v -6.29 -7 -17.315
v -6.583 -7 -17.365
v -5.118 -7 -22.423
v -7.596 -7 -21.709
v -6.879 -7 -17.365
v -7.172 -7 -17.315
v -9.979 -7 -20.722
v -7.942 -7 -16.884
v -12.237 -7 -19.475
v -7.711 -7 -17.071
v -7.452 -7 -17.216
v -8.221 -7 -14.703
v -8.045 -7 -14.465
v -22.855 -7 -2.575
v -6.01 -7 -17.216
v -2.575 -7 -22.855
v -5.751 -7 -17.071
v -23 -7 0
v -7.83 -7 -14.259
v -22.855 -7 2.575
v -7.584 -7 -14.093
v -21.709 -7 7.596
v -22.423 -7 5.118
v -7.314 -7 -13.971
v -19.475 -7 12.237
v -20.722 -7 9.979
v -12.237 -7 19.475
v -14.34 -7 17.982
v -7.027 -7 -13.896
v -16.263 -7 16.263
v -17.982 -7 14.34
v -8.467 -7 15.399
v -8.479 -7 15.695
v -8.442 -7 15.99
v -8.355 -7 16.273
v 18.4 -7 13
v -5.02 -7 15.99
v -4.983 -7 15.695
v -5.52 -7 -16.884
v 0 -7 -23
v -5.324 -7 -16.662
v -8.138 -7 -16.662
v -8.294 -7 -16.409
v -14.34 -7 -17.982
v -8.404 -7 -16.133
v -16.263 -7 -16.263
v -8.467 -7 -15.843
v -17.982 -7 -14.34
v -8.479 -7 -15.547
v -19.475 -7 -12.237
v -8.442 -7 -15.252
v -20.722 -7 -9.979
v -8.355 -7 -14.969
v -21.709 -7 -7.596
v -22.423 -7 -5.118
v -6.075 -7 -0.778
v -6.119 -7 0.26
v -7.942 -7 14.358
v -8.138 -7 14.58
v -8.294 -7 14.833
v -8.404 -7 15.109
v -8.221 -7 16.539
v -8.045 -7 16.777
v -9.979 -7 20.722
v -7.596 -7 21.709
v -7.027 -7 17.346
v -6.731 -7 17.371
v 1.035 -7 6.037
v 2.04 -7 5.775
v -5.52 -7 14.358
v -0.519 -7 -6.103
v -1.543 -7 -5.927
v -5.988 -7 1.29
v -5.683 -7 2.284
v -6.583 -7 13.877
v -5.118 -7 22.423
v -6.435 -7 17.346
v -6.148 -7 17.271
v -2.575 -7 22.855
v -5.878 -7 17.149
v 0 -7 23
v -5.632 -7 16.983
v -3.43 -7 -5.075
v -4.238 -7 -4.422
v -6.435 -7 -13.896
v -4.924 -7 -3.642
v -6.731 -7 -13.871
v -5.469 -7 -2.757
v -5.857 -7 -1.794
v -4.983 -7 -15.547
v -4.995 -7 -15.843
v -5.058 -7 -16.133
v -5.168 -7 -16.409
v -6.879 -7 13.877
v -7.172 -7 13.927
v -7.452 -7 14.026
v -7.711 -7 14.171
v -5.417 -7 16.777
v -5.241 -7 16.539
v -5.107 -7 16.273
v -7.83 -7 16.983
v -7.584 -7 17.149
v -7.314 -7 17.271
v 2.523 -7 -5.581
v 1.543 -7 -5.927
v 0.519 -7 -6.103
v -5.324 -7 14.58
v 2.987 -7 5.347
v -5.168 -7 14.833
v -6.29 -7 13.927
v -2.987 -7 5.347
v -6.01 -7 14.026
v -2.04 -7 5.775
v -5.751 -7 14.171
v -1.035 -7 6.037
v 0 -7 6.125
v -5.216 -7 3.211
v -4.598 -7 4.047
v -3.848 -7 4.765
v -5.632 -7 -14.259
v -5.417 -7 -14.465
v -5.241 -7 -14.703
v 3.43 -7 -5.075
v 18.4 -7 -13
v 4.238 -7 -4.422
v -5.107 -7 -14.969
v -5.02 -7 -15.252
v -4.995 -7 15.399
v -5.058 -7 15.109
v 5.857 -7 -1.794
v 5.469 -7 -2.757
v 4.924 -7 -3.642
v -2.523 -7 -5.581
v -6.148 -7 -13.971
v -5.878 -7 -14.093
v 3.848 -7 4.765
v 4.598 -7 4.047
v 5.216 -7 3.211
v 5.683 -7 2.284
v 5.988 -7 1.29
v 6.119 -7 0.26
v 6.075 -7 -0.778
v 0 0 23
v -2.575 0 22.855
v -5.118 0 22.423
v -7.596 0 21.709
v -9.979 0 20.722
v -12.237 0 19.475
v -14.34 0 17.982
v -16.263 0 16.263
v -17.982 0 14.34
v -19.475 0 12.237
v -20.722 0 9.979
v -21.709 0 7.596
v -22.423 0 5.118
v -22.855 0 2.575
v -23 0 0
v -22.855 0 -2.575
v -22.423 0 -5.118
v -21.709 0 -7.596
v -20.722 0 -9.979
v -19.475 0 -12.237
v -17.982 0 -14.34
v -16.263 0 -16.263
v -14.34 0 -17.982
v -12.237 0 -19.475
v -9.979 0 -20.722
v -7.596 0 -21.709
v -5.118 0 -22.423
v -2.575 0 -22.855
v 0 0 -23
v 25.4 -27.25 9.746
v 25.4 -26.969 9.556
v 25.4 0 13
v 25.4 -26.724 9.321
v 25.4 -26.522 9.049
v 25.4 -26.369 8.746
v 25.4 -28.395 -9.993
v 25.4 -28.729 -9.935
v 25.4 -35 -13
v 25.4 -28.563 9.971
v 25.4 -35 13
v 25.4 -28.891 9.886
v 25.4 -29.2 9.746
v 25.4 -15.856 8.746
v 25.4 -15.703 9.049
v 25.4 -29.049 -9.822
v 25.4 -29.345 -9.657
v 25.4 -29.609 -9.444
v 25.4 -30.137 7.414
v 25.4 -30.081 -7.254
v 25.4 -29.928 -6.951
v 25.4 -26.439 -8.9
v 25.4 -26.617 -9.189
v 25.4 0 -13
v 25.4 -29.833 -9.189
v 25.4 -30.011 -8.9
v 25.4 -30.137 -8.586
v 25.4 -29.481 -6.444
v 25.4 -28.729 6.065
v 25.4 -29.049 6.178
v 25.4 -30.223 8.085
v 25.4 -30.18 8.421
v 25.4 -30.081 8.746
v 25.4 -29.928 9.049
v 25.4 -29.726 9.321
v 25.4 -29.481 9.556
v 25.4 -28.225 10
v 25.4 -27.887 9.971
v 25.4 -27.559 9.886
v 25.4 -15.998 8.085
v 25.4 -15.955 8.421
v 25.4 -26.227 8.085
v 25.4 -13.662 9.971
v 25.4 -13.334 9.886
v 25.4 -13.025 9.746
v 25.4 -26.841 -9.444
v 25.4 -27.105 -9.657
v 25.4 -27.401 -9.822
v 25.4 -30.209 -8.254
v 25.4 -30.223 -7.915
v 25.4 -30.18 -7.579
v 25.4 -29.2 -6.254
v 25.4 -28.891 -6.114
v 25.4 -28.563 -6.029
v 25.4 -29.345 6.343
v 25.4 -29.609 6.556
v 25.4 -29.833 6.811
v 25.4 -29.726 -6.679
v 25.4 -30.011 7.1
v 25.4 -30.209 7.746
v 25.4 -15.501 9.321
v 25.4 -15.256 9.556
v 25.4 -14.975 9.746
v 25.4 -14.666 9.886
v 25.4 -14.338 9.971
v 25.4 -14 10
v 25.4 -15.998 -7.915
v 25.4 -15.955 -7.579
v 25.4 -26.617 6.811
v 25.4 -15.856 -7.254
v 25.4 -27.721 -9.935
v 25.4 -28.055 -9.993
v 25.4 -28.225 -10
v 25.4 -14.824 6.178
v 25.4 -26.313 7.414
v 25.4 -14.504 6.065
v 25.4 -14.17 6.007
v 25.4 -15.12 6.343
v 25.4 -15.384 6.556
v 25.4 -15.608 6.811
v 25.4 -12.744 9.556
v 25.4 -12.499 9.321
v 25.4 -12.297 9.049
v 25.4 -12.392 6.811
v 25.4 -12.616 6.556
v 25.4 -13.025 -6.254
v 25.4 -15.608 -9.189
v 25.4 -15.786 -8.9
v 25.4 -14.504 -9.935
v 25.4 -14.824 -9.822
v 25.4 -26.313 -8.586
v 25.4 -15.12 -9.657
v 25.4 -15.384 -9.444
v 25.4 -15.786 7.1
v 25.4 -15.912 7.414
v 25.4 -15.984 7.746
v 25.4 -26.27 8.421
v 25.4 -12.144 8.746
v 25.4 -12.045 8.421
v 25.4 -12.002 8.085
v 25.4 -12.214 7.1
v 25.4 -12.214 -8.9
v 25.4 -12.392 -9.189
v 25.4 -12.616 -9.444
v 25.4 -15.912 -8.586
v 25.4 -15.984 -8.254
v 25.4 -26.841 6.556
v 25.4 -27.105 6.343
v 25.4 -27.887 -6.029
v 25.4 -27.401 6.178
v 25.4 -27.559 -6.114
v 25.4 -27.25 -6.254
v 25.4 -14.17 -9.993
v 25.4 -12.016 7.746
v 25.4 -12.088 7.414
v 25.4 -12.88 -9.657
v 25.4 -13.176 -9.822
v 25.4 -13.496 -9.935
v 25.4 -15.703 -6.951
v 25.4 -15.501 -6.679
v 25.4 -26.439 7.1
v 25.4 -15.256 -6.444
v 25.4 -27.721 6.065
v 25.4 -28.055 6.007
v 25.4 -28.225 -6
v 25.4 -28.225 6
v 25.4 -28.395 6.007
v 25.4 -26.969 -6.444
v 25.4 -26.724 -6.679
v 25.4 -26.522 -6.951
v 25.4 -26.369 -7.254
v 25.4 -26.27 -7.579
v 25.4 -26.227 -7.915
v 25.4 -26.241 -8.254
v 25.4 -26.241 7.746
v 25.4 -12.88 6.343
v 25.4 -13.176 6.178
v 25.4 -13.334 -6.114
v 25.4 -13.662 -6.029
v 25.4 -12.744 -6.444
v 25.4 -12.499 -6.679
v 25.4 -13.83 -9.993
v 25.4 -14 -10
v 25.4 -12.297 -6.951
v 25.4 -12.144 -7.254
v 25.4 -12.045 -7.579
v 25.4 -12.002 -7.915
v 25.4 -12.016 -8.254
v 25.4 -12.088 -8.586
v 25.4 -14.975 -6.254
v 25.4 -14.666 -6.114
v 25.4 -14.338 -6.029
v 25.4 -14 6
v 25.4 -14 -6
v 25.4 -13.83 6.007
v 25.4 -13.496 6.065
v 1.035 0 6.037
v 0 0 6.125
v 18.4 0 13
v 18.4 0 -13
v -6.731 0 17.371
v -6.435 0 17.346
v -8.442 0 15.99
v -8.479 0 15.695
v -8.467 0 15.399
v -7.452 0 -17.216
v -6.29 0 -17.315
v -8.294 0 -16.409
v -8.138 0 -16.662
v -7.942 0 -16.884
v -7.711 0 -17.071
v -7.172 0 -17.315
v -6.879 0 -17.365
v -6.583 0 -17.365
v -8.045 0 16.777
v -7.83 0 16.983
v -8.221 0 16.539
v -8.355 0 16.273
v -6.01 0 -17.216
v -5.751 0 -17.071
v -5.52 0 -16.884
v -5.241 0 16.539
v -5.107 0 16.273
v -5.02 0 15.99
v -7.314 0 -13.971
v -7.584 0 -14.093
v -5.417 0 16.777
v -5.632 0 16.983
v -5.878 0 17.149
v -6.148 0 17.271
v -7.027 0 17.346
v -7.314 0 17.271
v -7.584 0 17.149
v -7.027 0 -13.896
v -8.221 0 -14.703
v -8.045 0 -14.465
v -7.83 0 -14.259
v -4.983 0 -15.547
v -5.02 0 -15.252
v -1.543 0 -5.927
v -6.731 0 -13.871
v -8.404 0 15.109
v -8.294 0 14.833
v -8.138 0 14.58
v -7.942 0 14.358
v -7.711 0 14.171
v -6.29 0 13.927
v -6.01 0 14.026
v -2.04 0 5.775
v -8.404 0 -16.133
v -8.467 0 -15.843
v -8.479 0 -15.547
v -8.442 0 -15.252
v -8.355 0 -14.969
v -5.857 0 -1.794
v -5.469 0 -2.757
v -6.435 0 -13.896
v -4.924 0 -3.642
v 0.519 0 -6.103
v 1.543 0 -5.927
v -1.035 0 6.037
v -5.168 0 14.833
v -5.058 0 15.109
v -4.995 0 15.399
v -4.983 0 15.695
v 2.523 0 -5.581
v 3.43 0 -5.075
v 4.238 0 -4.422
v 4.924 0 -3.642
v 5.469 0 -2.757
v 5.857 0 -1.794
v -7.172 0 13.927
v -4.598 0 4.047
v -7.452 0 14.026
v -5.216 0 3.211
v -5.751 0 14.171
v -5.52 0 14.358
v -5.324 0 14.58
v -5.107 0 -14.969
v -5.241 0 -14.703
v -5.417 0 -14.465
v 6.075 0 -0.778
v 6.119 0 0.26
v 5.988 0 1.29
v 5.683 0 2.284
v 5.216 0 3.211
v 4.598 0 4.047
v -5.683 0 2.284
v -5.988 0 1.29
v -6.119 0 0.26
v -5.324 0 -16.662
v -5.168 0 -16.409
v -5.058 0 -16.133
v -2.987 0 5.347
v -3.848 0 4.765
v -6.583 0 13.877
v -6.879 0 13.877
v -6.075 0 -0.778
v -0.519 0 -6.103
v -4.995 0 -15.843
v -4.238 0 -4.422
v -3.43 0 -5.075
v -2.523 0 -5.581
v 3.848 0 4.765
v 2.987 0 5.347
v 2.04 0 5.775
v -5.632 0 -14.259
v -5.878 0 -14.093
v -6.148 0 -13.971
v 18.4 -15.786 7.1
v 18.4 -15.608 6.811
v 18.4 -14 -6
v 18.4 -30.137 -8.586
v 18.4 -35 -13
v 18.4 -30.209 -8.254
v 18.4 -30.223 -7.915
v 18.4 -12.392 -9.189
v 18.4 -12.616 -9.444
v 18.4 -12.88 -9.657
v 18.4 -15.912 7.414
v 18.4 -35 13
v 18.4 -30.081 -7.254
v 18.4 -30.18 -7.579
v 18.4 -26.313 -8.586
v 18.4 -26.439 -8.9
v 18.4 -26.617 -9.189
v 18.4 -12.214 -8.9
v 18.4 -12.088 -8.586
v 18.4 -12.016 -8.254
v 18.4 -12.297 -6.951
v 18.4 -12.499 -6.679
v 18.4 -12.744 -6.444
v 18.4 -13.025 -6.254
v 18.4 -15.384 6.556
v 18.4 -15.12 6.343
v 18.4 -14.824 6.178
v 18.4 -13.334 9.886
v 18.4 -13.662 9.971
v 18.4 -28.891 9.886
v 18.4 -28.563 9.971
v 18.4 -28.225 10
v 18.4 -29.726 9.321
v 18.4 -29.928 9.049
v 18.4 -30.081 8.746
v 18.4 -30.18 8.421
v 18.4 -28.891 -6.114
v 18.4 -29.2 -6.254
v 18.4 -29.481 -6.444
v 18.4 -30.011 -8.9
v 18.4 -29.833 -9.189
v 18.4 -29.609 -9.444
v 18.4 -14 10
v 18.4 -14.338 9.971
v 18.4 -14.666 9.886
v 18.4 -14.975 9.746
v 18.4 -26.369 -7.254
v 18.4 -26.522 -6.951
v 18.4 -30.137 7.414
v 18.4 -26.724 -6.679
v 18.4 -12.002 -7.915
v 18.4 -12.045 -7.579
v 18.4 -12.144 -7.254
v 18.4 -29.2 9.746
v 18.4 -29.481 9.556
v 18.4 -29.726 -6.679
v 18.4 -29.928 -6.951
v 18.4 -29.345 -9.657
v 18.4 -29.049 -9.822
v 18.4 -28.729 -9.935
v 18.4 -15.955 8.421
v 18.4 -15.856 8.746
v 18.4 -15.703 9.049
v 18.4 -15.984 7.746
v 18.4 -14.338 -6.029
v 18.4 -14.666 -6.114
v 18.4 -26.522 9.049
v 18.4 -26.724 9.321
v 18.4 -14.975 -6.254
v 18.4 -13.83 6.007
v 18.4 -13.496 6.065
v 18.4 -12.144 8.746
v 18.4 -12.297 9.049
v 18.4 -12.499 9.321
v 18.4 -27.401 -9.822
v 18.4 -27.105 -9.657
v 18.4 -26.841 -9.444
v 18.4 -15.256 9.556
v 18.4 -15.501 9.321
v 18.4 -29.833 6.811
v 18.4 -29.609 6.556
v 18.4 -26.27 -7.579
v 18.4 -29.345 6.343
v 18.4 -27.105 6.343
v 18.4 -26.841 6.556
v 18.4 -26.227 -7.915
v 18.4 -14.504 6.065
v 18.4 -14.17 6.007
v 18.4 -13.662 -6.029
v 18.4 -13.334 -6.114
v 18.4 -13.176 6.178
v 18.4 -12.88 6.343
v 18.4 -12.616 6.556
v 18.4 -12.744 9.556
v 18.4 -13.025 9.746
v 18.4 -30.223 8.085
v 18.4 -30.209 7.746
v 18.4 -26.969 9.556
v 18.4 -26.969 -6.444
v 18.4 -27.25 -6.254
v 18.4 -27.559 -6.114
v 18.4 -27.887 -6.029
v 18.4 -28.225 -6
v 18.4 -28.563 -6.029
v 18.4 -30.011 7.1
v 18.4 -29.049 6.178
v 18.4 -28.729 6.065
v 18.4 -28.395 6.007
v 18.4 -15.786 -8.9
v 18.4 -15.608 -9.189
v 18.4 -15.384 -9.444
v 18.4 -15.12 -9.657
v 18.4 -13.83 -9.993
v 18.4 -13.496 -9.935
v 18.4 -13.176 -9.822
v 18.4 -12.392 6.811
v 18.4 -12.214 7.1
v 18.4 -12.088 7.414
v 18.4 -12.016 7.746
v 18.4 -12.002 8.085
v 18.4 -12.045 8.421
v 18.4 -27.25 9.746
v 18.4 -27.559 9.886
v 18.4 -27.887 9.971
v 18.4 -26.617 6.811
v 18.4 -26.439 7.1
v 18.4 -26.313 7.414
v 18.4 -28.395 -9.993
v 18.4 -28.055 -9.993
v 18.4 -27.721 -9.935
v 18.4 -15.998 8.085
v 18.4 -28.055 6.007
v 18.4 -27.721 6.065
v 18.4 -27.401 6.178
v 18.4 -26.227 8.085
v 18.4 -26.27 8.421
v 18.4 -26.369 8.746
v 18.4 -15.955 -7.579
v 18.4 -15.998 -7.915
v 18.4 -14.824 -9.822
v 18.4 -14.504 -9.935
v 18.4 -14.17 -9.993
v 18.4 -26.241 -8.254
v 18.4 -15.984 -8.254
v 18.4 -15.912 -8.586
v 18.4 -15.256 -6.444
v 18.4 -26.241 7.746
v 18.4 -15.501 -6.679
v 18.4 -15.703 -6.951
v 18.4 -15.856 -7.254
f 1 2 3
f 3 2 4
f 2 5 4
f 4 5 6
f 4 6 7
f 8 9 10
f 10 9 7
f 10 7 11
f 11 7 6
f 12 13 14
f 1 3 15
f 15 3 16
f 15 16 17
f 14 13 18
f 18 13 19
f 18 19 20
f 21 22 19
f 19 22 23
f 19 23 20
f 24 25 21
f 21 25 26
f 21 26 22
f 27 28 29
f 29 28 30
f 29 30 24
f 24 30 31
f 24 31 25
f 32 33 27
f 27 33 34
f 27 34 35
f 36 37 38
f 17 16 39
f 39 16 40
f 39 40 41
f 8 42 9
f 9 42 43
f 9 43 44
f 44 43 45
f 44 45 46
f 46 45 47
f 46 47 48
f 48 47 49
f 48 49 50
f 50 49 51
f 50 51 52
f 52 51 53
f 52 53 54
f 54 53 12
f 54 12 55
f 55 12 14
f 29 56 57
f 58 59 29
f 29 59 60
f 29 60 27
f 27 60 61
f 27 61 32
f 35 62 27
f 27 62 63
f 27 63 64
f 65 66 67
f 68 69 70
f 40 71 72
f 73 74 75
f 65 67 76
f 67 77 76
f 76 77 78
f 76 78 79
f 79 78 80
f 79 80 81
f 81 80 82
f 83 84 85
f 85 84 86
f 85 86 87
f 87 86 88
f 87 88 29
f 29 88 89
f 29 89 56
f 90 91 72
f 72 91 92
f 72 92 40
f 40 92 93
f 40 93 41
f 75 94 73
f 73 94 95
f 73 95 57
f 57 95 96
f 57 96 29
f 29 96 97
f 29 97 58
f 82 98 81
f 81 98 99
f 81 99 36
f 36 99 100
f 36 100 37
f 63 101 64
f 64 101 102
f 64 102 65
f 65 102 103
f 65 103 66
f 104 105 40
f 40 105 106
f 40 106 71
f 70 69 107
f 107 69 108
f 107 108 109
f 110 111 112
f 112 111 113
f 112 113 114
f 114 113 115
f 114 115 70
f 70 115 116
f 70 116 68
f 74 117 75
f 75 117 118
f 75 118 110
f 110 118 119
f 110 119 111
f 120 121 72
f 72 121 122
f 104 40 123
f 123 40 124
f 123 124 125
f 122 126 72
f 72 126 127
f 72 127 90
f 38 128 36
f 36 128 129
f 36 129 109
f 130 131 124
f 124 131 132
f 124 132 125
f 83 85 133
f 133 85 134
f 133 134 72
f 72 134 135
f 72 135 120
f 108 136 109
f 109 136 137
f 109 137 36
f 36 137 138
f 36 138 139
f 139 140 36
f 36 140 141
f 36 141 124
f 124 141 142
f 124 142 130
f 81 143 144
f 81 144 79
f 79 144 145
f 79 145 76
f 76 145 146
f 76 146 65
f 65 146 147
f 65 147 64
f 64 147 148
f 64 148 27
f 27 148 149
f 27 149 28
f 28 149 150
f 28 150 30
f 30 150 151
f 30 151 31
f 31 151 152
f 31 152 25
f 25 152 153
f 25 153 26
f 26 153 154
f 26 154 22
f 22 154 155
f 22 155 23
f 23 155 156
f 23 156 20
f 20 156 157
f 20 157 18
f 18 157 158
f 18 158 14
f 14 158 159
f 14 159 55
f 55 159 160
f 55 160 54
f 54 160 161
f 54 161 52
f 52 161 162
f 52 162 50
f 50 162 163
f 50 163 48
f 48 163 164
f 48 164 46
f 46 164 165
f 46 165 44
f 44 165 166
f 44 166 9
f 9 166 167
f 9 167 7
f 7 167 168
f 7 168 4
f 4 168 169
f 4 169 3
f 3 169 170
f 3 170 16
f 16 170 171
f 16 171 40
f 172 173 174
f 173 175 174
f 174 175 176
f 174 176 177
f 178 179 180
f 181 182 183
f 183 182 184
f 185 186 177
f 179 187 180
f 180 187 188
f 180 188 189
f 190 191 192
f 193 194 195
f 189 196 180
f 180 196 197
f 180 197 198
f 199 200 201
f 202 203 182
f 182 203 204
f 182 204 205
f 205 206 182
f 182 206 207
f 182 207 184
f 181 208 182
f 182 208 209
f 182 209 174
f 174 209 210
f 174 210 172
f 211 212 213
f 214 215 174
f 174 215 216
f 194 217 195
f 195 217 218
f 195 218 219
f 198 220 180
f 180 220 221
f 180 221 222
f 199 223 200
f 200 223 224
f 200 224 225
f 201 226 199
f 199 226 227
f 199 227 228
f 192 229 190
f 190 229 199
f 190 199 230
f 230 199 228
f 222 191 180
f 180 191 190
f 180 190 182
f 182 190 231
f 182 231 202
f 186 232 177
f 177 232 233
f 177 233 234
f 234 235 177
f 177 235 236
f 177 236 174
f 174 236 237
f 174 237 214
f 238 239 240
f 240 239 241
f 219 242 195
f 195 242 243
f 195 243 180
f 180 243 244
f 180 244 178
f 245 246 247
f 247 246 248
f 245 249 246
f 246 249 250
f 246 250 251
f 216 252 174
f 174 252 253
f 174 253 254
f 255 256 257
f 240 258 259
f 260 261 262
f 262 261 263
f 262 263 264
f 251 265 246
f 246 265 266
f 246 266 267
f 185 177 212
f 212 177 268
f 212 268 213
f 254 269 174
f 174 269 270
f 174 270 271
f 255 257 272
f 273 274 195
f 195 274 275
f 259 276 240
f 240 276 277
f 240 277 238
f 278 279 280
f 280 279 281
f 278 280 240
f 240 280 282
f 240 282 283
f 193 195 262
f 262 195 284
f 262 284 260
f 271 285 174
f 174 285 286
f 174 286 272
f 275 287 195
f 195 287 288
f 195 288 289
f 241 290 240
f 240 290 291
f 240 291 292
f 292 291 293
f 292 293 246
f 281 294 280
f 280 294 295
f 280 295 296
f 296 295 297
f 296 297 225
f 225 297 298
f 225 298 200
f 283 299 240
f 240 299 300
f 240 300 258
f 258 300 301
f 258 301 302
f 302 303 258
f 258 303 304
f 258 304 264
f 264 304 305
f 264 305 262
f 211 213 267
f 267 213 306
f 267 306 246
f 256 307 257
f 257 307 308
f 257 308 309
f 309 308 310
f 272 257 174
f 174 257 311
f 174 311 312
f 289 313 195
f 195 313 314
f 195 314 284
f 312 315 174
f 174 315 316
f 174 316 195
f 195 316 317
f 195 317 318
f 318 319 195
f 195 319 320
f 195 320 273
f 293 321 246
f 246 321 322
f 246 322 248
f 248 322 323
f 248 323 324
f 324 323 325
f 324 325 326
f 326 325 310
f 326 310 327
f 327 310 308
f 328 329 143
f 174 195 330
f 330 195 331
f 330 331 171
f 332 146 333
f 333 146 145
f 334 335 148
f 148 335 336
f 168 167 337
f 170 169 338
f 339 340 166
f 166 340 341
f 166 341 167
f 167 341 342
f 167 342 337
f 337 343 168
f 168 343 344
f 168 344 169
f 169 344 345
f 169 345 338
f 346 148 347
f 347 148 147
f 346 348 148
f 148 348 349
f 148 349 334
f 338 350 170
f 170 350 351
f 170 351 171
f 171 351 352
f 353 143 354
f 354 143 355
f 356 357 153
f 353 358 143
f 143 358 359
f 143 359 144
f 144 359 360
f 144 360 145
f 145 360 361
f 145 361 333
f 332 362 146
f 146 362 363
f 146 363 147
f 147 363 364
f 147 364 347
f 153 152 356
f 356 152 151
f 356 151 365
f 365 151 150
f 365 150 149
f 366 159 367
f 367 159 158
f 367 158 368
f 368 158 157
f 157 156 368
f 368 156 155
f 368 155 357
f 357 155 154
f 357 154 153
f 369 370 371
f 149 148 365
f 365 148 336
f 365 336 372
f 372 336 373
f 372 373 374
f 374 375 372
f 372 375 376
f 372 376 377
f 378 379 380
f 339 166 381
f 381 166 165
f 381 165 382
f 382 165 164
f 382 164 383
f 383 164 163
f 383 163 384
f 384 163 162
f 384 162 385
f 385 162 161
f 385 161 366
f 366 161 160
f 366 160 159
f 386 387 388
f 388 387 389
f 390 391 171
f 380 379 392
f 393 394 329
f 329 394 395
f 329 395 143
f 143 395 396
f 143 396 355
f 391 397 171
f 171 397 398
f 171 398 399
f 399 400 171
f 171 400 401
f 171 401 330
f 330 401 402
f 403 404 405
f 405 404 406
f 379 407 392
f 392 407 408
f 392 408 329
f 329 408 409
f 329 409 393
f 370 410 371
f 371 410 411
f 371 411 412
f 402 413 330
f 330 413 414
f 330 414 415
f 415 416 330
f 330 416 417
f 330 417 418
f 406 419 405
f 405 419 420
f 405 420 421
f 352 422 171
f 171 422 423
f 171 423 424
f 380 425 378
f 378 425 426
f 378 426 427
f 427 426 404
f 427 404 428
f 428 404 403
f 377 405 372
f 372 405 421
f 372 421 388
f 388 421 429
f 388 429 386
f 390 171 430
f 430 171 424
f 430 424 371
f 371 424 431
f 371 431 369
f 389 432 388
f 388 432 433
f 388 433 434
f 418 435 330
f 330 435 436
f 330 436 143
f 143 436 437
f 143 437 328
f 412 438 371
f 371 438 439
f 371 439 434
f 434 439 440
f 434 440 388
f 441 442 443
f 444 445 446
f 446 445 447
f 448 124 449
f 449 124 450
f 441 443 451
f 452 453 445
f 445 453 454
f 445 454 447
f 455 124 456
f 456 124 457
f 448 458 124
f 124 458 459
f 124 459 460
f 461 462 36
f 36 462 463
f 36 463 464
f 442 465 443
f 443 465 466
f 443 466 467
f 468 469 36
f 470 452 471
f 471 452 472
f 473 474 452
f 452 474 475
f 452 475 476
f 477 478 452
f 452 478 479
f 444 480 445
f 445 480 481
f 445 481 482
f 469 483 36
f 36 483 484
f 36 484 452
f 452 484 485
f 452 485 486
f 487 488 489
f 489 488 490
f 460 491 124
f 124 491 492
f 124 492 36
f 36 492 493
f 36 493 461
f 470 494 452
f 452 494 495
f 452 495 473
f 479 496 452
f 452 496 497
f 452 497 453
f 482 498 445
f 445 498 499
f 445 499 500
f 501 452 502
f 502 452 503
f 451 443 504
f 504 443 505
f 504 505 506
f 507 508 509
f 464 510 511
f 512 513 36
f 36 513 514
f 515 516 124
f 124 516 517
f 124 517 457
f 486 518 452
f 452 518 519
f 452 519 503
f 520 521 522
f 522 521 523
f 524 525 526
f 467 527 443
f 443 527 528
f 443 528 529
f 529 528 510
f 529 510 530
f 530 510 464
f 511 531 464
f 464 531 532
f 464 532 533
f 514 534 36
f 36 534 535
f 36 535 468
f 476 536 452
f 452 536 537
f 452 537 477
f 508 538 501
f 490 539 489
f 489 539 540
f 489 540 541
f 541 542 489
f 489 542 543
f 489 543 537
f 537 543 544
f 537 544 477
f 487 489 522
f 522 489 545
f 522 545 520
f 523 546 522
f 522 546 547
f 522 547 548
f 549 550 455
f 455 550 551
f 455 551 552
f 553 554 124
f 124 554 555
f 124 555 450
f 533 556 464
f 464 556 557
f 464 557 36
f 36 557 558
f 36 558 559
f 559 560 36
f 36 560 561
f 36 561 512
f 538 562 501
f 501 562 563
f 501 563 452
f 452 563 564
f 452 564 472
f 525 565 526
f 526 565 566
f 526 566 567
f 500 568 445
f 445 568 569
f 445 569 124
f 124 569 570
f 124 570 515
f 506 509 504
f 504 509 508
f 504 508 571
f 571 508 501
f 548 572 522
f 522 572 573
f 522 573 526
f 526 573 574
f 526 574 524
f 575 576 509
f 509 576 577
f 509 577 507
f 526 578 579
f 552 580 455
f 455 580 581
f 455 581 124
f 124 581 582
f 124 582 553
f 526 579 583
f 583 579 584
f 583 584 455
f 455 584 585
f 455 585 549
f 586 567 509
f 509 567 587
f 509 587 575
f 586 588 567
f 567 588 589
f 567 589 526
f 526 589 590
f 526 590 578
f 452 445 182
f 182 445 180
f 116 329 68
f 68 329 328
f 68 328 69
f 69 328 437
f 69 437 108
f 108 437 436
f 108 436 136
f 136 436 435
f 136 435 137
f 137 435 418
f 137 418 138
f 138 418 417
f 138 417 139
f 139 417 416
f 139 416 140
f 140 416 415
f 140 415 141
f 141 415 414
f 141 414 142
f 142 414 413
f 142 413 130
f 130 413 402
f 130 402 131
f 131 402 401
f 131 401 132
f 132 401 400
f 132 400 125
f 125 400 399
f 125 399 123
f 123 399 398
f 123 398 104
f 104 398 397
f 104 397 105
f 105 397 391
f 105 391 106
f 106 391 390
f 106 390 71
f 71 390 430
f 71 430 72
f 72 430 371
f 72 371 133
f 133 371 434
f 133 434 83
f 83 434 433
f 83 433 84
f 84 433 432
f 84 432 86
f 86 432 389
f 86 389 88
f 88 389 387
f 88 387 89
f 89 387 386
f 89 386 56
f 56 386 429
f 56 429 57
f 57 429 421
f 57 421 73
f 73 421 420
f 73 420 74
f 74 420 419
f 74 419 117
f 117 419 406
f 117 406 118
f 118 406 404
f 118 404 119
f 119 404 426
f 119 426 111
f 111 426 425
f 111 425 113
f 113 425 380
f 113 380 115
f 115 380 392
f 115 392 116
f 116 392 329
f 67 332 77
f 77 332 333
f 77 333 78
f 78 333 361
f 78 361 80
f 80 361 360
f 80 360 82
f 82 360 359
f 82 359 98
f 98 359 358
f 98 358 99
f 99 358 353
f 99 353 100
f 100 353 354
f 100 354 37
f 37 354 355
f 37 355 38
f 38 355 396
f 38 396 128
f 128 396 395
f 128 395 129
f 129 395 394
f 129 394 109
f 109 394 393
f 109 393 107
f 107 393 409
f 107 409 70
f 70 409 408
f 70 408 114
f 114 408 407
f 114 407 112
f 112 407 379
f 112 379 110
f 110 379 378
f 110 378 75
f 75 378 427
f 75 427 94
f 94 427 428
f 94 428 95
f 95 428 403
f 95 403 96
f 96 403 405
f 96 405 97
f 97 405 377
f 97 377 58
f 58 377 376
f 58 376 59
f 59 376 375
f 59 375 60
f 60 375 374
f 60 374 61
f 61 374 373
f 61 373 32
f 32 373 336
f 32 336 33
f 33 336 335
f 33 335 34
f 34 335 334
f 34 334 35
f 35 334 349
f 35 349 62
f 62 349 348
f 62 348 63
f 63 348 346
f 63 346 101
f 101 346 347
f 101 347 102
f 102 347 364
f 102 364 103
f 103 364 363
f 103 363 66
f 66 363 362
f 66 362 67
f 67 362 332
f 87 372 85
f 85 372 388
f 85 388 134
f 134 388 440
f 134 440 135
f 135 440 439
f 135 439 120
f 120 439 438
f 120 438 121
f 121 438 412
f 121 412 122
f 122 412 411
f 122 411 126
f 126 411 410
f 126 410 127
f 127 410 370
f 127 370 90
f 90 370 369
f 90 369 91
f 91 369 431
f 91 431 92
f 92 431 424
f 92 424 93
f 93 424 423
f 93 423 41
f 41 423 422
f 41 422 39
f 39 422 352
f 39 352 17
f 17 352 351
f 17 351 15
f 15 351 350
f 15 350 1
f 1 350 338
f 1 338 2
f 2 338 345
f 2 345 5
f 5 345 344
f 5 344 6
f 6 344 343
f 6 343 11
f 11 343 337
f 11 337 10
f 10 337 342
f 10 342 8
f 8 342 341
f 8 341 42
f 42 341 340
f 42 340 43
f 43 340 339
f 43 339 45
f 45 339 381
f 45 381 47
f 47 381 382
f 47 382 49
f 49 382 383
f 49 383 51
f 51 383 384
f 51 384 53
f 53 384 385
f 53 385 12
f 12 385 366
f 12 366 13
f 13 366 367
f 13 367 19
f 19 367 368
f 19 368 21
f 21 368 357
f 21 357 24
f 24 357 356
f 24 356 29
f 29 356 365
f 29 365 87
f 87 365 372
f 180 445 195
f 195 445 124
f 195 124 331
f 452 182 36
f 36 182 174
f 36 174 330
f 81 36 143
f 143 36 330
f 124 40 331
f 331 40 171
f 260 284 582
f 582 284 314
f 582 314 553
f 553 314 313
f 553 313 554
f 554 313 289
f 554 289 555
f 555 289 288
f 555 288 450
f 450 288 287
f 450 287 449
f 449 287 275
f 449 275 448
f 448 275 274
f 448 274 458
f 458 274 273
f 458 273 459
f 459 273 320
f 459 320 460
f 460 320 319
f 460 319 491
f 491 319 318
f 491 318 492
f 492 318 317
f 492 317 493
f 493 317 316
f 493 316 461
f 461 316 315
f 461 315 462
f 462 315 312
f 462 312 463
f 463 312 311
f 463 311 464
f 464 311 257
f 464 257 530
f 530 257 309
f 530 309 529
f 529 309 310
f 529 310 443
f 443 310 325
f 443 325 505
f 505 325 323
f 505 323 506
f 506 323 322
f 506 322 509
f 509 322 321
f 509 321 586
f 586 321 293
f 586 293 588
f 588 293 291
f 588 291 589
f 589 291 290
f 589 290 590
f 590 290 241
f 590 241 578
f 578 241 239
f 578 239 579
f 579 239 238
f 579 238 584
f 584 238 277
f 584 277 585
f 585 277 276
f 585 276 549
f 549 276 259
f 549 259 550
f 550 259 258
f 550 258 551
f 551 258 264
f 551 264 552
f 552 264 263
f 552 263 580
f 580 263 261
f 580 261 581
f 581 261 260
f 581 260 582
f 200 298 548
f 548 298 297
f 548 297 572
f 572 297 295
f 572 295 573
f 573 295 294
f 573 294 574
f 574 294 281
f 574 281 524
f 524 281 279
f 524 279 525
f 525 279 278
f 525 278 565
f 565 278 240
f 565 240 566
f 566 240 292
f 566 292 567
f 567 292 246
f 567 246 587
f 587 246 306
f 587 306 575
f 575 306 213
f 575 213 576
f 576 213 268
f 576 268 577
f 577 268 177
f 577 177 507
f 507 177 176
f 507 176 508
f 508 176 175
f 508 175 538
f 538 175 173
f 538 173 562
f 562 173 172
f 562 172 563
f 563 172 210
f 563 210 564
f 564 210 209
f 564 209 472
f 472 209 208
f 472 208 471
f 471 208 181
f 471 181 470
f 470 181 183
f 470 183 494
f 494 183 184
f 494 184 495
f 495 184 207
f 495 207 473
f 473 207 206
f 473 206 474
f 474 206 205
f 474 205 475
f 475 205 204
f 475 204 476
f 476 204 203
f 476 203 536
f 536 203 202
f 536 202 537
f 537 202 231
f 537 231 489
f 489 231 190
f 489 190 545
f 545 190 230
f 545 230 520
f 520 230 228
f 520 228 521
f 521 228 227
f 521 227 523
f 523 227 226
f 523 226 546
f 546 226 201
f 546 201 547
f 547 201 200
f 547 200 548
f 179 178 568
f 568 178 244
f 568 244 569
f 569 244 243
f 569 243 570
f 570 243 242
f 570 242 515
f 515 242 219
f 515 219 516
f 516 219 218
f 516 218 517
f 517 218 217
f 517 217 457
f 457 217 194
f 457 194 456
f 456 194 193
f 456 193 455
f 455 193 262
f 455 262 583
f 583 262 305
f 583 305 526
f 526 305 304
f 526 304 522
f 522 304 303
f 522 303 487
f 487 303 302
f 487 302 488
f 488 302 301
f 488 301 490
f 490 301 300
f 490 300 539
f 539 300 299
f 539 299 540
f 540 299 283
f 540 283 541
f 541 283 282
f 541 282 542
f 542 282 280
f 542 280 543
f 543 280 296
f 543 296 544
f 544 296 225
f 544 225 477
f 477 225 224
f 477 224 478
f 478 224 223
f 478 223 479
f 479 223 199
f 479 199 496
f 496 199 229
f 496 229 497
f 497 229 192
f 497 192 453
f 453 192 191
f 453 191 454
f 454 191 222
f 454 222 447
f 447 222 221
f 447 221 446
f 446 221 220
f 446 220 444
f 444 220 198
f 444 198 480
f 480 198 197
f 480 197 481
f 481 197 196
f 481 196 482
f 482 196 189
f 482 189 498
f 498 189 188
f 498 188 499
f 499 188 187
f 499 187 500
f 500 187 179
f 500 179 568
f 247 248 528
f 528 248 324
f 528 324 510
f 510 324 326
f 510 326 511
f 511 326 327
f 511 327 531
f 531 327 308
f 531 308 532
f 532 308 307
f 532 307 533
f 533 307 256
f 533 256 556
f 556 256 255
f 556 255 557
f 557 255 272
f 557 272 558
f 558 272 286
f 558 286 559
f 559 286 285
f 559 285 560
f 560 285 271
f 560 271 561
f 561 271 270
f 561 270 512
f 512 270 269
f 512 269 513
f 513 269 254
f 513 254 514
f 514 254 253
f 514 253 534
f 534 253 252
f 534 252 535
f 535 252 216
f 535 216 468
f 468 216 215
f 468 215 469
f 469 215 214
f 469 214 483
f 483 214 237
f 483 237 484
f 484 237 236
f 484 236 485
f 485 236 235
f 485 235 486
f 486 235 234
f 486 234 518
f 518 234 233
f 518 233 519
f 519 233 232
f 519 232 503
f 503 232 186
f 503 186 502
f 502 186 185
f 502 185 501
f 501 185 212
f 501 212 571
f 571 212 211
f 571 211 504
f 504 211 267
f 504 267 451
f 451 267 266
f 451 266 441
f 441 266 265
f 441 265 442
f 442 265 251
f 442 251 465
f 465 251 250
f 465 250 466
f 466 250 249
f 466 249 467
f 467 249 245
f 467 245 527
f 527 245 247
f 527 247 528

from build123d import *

# Parameters (mm, degrees)
BOSS_EXTRUDE1_DEPTH = 7
SKETCH2_W           = 7
SKETCH2_H           = 46
BOSS_EXTRUDE2_DEPTH = 28
SKETCH4_R           = 6.125
CUT_EXTRUDE1_DEPTH  = 7
SKETCH5_R           = 1.75
CUT_EXTRUDE3_DEPTH  = 7
SKETCH6_W           = 10
SKETCH6_H           = 28
CUT_EXTRUDE4_DEPTH  = 10
CUT_EXTRUDE5_DEPTH  = 10
SKETCH8_R           = 2
CUT_EXTRUDE6_DEPTH  = 10


with BuildPart() as part:
    # Sketch1 → Boss-Extrude1 (new body)
    with BuildSketch(Plane(origin=(0, 0, 0), x_dir=(1, 0, 0), z_dir=(0, 1, 0))):
        with BuildLine():
            Line((25.4, 23), (25.4, -23))
            Line((25.4, -23), (0, -23))
            ThreePointArc((0, -23), (-23, 0), (0, 23))
            Line((0, 23), (25.4, 23))
        make_face()
    extrude(amount=-BOSS_EXTRUDE1_DEPTH)

    # Sketch2 → Boss-Extrude2 (add)
    with BuildSketch(Plane.XZ.offset(7)):
        with Locations((21.9, 0)):
            Rectangle(SKETCH2_W, SKETCH2_H)
    extrude(amount=BOSS_EXTRUDE2_DEPTH)

    # Sketch4 → Cut-Extrude1 (cut)
    with BuildSketch(Plane(origin=(0, 0, 0), x_dir=(1, 0, 0), z_dir=(0, 1, 0))):
        Circle(SKETCH4_R)
    extrude(amount=-CUT_EXTRUDE1_DEPTH, mode=Mode.SUBTRACT)

    # Sketch5 → Cut-Extrude3 (cut)
    with BuildSketch(Plane(origin=(0, 0, 0), x_dir=(1, 0, 0), z_dir=(0, 1, 0))):
        with Locations((-6.731, 15.621)):
            Circle(SKETCH5_R)
        with Locations((-6.731, -15.621)):
            Circle(SKETCH5_R)
    extrude(amount=-CUT_EXTRUDE3_DEPTH, mode=Mode.SUBTRACT)

    # Sketch6 → Cut-Extrude4 (cut)
    with BuildSketch(Plane.ZY.offset(-18.4)):
        with Locations((18, -21)):
            Rectangle(SKETCH6_W, SKETCH6_H)
        with Locations((-18, -21)):
            Rectangle(SKETCH6_W, SKETCH6_H)
    extrude(amount=-CUT_EXTRUDE4_DEPTH, mode=Mode.SUBTRACT)

    # Sketch7 → Cut-Extrude5 (cut)
    with BuildSketch(Plane.XZ.offset(7)):
        Polygon((0, -23), (18.4, -13), (25.4, -13), (25.4, -23), align=None)
        Polygon((0, 23), (18.4, 13), (25.4, 13), (25.4, 23), align=None)
    extrude(amount=-CUT_EXTRUDE5_DEPTH, mode=Mode.SUBTRACT)

    # Sketch8 → Cut-Extrude6 (cut)
    with BuildSketch(Plane.ZY.offset(-18.4)):
        with Locations((-8, -14)):
            Circle(SKETCH8_R)
        with Locations((8, -14)):
            Circle(SKETCH8_R)
        with Locations((-8, -28.225)):
            Circle(SKETCH8_R)
        with Locations((8, -28.225)):
            Circle(SKETCH8_R)
    extrude(amount=-CUT_EXTRUDE6_DEPTH, mode=Mode.SUBTRACT)


solid = part.part
